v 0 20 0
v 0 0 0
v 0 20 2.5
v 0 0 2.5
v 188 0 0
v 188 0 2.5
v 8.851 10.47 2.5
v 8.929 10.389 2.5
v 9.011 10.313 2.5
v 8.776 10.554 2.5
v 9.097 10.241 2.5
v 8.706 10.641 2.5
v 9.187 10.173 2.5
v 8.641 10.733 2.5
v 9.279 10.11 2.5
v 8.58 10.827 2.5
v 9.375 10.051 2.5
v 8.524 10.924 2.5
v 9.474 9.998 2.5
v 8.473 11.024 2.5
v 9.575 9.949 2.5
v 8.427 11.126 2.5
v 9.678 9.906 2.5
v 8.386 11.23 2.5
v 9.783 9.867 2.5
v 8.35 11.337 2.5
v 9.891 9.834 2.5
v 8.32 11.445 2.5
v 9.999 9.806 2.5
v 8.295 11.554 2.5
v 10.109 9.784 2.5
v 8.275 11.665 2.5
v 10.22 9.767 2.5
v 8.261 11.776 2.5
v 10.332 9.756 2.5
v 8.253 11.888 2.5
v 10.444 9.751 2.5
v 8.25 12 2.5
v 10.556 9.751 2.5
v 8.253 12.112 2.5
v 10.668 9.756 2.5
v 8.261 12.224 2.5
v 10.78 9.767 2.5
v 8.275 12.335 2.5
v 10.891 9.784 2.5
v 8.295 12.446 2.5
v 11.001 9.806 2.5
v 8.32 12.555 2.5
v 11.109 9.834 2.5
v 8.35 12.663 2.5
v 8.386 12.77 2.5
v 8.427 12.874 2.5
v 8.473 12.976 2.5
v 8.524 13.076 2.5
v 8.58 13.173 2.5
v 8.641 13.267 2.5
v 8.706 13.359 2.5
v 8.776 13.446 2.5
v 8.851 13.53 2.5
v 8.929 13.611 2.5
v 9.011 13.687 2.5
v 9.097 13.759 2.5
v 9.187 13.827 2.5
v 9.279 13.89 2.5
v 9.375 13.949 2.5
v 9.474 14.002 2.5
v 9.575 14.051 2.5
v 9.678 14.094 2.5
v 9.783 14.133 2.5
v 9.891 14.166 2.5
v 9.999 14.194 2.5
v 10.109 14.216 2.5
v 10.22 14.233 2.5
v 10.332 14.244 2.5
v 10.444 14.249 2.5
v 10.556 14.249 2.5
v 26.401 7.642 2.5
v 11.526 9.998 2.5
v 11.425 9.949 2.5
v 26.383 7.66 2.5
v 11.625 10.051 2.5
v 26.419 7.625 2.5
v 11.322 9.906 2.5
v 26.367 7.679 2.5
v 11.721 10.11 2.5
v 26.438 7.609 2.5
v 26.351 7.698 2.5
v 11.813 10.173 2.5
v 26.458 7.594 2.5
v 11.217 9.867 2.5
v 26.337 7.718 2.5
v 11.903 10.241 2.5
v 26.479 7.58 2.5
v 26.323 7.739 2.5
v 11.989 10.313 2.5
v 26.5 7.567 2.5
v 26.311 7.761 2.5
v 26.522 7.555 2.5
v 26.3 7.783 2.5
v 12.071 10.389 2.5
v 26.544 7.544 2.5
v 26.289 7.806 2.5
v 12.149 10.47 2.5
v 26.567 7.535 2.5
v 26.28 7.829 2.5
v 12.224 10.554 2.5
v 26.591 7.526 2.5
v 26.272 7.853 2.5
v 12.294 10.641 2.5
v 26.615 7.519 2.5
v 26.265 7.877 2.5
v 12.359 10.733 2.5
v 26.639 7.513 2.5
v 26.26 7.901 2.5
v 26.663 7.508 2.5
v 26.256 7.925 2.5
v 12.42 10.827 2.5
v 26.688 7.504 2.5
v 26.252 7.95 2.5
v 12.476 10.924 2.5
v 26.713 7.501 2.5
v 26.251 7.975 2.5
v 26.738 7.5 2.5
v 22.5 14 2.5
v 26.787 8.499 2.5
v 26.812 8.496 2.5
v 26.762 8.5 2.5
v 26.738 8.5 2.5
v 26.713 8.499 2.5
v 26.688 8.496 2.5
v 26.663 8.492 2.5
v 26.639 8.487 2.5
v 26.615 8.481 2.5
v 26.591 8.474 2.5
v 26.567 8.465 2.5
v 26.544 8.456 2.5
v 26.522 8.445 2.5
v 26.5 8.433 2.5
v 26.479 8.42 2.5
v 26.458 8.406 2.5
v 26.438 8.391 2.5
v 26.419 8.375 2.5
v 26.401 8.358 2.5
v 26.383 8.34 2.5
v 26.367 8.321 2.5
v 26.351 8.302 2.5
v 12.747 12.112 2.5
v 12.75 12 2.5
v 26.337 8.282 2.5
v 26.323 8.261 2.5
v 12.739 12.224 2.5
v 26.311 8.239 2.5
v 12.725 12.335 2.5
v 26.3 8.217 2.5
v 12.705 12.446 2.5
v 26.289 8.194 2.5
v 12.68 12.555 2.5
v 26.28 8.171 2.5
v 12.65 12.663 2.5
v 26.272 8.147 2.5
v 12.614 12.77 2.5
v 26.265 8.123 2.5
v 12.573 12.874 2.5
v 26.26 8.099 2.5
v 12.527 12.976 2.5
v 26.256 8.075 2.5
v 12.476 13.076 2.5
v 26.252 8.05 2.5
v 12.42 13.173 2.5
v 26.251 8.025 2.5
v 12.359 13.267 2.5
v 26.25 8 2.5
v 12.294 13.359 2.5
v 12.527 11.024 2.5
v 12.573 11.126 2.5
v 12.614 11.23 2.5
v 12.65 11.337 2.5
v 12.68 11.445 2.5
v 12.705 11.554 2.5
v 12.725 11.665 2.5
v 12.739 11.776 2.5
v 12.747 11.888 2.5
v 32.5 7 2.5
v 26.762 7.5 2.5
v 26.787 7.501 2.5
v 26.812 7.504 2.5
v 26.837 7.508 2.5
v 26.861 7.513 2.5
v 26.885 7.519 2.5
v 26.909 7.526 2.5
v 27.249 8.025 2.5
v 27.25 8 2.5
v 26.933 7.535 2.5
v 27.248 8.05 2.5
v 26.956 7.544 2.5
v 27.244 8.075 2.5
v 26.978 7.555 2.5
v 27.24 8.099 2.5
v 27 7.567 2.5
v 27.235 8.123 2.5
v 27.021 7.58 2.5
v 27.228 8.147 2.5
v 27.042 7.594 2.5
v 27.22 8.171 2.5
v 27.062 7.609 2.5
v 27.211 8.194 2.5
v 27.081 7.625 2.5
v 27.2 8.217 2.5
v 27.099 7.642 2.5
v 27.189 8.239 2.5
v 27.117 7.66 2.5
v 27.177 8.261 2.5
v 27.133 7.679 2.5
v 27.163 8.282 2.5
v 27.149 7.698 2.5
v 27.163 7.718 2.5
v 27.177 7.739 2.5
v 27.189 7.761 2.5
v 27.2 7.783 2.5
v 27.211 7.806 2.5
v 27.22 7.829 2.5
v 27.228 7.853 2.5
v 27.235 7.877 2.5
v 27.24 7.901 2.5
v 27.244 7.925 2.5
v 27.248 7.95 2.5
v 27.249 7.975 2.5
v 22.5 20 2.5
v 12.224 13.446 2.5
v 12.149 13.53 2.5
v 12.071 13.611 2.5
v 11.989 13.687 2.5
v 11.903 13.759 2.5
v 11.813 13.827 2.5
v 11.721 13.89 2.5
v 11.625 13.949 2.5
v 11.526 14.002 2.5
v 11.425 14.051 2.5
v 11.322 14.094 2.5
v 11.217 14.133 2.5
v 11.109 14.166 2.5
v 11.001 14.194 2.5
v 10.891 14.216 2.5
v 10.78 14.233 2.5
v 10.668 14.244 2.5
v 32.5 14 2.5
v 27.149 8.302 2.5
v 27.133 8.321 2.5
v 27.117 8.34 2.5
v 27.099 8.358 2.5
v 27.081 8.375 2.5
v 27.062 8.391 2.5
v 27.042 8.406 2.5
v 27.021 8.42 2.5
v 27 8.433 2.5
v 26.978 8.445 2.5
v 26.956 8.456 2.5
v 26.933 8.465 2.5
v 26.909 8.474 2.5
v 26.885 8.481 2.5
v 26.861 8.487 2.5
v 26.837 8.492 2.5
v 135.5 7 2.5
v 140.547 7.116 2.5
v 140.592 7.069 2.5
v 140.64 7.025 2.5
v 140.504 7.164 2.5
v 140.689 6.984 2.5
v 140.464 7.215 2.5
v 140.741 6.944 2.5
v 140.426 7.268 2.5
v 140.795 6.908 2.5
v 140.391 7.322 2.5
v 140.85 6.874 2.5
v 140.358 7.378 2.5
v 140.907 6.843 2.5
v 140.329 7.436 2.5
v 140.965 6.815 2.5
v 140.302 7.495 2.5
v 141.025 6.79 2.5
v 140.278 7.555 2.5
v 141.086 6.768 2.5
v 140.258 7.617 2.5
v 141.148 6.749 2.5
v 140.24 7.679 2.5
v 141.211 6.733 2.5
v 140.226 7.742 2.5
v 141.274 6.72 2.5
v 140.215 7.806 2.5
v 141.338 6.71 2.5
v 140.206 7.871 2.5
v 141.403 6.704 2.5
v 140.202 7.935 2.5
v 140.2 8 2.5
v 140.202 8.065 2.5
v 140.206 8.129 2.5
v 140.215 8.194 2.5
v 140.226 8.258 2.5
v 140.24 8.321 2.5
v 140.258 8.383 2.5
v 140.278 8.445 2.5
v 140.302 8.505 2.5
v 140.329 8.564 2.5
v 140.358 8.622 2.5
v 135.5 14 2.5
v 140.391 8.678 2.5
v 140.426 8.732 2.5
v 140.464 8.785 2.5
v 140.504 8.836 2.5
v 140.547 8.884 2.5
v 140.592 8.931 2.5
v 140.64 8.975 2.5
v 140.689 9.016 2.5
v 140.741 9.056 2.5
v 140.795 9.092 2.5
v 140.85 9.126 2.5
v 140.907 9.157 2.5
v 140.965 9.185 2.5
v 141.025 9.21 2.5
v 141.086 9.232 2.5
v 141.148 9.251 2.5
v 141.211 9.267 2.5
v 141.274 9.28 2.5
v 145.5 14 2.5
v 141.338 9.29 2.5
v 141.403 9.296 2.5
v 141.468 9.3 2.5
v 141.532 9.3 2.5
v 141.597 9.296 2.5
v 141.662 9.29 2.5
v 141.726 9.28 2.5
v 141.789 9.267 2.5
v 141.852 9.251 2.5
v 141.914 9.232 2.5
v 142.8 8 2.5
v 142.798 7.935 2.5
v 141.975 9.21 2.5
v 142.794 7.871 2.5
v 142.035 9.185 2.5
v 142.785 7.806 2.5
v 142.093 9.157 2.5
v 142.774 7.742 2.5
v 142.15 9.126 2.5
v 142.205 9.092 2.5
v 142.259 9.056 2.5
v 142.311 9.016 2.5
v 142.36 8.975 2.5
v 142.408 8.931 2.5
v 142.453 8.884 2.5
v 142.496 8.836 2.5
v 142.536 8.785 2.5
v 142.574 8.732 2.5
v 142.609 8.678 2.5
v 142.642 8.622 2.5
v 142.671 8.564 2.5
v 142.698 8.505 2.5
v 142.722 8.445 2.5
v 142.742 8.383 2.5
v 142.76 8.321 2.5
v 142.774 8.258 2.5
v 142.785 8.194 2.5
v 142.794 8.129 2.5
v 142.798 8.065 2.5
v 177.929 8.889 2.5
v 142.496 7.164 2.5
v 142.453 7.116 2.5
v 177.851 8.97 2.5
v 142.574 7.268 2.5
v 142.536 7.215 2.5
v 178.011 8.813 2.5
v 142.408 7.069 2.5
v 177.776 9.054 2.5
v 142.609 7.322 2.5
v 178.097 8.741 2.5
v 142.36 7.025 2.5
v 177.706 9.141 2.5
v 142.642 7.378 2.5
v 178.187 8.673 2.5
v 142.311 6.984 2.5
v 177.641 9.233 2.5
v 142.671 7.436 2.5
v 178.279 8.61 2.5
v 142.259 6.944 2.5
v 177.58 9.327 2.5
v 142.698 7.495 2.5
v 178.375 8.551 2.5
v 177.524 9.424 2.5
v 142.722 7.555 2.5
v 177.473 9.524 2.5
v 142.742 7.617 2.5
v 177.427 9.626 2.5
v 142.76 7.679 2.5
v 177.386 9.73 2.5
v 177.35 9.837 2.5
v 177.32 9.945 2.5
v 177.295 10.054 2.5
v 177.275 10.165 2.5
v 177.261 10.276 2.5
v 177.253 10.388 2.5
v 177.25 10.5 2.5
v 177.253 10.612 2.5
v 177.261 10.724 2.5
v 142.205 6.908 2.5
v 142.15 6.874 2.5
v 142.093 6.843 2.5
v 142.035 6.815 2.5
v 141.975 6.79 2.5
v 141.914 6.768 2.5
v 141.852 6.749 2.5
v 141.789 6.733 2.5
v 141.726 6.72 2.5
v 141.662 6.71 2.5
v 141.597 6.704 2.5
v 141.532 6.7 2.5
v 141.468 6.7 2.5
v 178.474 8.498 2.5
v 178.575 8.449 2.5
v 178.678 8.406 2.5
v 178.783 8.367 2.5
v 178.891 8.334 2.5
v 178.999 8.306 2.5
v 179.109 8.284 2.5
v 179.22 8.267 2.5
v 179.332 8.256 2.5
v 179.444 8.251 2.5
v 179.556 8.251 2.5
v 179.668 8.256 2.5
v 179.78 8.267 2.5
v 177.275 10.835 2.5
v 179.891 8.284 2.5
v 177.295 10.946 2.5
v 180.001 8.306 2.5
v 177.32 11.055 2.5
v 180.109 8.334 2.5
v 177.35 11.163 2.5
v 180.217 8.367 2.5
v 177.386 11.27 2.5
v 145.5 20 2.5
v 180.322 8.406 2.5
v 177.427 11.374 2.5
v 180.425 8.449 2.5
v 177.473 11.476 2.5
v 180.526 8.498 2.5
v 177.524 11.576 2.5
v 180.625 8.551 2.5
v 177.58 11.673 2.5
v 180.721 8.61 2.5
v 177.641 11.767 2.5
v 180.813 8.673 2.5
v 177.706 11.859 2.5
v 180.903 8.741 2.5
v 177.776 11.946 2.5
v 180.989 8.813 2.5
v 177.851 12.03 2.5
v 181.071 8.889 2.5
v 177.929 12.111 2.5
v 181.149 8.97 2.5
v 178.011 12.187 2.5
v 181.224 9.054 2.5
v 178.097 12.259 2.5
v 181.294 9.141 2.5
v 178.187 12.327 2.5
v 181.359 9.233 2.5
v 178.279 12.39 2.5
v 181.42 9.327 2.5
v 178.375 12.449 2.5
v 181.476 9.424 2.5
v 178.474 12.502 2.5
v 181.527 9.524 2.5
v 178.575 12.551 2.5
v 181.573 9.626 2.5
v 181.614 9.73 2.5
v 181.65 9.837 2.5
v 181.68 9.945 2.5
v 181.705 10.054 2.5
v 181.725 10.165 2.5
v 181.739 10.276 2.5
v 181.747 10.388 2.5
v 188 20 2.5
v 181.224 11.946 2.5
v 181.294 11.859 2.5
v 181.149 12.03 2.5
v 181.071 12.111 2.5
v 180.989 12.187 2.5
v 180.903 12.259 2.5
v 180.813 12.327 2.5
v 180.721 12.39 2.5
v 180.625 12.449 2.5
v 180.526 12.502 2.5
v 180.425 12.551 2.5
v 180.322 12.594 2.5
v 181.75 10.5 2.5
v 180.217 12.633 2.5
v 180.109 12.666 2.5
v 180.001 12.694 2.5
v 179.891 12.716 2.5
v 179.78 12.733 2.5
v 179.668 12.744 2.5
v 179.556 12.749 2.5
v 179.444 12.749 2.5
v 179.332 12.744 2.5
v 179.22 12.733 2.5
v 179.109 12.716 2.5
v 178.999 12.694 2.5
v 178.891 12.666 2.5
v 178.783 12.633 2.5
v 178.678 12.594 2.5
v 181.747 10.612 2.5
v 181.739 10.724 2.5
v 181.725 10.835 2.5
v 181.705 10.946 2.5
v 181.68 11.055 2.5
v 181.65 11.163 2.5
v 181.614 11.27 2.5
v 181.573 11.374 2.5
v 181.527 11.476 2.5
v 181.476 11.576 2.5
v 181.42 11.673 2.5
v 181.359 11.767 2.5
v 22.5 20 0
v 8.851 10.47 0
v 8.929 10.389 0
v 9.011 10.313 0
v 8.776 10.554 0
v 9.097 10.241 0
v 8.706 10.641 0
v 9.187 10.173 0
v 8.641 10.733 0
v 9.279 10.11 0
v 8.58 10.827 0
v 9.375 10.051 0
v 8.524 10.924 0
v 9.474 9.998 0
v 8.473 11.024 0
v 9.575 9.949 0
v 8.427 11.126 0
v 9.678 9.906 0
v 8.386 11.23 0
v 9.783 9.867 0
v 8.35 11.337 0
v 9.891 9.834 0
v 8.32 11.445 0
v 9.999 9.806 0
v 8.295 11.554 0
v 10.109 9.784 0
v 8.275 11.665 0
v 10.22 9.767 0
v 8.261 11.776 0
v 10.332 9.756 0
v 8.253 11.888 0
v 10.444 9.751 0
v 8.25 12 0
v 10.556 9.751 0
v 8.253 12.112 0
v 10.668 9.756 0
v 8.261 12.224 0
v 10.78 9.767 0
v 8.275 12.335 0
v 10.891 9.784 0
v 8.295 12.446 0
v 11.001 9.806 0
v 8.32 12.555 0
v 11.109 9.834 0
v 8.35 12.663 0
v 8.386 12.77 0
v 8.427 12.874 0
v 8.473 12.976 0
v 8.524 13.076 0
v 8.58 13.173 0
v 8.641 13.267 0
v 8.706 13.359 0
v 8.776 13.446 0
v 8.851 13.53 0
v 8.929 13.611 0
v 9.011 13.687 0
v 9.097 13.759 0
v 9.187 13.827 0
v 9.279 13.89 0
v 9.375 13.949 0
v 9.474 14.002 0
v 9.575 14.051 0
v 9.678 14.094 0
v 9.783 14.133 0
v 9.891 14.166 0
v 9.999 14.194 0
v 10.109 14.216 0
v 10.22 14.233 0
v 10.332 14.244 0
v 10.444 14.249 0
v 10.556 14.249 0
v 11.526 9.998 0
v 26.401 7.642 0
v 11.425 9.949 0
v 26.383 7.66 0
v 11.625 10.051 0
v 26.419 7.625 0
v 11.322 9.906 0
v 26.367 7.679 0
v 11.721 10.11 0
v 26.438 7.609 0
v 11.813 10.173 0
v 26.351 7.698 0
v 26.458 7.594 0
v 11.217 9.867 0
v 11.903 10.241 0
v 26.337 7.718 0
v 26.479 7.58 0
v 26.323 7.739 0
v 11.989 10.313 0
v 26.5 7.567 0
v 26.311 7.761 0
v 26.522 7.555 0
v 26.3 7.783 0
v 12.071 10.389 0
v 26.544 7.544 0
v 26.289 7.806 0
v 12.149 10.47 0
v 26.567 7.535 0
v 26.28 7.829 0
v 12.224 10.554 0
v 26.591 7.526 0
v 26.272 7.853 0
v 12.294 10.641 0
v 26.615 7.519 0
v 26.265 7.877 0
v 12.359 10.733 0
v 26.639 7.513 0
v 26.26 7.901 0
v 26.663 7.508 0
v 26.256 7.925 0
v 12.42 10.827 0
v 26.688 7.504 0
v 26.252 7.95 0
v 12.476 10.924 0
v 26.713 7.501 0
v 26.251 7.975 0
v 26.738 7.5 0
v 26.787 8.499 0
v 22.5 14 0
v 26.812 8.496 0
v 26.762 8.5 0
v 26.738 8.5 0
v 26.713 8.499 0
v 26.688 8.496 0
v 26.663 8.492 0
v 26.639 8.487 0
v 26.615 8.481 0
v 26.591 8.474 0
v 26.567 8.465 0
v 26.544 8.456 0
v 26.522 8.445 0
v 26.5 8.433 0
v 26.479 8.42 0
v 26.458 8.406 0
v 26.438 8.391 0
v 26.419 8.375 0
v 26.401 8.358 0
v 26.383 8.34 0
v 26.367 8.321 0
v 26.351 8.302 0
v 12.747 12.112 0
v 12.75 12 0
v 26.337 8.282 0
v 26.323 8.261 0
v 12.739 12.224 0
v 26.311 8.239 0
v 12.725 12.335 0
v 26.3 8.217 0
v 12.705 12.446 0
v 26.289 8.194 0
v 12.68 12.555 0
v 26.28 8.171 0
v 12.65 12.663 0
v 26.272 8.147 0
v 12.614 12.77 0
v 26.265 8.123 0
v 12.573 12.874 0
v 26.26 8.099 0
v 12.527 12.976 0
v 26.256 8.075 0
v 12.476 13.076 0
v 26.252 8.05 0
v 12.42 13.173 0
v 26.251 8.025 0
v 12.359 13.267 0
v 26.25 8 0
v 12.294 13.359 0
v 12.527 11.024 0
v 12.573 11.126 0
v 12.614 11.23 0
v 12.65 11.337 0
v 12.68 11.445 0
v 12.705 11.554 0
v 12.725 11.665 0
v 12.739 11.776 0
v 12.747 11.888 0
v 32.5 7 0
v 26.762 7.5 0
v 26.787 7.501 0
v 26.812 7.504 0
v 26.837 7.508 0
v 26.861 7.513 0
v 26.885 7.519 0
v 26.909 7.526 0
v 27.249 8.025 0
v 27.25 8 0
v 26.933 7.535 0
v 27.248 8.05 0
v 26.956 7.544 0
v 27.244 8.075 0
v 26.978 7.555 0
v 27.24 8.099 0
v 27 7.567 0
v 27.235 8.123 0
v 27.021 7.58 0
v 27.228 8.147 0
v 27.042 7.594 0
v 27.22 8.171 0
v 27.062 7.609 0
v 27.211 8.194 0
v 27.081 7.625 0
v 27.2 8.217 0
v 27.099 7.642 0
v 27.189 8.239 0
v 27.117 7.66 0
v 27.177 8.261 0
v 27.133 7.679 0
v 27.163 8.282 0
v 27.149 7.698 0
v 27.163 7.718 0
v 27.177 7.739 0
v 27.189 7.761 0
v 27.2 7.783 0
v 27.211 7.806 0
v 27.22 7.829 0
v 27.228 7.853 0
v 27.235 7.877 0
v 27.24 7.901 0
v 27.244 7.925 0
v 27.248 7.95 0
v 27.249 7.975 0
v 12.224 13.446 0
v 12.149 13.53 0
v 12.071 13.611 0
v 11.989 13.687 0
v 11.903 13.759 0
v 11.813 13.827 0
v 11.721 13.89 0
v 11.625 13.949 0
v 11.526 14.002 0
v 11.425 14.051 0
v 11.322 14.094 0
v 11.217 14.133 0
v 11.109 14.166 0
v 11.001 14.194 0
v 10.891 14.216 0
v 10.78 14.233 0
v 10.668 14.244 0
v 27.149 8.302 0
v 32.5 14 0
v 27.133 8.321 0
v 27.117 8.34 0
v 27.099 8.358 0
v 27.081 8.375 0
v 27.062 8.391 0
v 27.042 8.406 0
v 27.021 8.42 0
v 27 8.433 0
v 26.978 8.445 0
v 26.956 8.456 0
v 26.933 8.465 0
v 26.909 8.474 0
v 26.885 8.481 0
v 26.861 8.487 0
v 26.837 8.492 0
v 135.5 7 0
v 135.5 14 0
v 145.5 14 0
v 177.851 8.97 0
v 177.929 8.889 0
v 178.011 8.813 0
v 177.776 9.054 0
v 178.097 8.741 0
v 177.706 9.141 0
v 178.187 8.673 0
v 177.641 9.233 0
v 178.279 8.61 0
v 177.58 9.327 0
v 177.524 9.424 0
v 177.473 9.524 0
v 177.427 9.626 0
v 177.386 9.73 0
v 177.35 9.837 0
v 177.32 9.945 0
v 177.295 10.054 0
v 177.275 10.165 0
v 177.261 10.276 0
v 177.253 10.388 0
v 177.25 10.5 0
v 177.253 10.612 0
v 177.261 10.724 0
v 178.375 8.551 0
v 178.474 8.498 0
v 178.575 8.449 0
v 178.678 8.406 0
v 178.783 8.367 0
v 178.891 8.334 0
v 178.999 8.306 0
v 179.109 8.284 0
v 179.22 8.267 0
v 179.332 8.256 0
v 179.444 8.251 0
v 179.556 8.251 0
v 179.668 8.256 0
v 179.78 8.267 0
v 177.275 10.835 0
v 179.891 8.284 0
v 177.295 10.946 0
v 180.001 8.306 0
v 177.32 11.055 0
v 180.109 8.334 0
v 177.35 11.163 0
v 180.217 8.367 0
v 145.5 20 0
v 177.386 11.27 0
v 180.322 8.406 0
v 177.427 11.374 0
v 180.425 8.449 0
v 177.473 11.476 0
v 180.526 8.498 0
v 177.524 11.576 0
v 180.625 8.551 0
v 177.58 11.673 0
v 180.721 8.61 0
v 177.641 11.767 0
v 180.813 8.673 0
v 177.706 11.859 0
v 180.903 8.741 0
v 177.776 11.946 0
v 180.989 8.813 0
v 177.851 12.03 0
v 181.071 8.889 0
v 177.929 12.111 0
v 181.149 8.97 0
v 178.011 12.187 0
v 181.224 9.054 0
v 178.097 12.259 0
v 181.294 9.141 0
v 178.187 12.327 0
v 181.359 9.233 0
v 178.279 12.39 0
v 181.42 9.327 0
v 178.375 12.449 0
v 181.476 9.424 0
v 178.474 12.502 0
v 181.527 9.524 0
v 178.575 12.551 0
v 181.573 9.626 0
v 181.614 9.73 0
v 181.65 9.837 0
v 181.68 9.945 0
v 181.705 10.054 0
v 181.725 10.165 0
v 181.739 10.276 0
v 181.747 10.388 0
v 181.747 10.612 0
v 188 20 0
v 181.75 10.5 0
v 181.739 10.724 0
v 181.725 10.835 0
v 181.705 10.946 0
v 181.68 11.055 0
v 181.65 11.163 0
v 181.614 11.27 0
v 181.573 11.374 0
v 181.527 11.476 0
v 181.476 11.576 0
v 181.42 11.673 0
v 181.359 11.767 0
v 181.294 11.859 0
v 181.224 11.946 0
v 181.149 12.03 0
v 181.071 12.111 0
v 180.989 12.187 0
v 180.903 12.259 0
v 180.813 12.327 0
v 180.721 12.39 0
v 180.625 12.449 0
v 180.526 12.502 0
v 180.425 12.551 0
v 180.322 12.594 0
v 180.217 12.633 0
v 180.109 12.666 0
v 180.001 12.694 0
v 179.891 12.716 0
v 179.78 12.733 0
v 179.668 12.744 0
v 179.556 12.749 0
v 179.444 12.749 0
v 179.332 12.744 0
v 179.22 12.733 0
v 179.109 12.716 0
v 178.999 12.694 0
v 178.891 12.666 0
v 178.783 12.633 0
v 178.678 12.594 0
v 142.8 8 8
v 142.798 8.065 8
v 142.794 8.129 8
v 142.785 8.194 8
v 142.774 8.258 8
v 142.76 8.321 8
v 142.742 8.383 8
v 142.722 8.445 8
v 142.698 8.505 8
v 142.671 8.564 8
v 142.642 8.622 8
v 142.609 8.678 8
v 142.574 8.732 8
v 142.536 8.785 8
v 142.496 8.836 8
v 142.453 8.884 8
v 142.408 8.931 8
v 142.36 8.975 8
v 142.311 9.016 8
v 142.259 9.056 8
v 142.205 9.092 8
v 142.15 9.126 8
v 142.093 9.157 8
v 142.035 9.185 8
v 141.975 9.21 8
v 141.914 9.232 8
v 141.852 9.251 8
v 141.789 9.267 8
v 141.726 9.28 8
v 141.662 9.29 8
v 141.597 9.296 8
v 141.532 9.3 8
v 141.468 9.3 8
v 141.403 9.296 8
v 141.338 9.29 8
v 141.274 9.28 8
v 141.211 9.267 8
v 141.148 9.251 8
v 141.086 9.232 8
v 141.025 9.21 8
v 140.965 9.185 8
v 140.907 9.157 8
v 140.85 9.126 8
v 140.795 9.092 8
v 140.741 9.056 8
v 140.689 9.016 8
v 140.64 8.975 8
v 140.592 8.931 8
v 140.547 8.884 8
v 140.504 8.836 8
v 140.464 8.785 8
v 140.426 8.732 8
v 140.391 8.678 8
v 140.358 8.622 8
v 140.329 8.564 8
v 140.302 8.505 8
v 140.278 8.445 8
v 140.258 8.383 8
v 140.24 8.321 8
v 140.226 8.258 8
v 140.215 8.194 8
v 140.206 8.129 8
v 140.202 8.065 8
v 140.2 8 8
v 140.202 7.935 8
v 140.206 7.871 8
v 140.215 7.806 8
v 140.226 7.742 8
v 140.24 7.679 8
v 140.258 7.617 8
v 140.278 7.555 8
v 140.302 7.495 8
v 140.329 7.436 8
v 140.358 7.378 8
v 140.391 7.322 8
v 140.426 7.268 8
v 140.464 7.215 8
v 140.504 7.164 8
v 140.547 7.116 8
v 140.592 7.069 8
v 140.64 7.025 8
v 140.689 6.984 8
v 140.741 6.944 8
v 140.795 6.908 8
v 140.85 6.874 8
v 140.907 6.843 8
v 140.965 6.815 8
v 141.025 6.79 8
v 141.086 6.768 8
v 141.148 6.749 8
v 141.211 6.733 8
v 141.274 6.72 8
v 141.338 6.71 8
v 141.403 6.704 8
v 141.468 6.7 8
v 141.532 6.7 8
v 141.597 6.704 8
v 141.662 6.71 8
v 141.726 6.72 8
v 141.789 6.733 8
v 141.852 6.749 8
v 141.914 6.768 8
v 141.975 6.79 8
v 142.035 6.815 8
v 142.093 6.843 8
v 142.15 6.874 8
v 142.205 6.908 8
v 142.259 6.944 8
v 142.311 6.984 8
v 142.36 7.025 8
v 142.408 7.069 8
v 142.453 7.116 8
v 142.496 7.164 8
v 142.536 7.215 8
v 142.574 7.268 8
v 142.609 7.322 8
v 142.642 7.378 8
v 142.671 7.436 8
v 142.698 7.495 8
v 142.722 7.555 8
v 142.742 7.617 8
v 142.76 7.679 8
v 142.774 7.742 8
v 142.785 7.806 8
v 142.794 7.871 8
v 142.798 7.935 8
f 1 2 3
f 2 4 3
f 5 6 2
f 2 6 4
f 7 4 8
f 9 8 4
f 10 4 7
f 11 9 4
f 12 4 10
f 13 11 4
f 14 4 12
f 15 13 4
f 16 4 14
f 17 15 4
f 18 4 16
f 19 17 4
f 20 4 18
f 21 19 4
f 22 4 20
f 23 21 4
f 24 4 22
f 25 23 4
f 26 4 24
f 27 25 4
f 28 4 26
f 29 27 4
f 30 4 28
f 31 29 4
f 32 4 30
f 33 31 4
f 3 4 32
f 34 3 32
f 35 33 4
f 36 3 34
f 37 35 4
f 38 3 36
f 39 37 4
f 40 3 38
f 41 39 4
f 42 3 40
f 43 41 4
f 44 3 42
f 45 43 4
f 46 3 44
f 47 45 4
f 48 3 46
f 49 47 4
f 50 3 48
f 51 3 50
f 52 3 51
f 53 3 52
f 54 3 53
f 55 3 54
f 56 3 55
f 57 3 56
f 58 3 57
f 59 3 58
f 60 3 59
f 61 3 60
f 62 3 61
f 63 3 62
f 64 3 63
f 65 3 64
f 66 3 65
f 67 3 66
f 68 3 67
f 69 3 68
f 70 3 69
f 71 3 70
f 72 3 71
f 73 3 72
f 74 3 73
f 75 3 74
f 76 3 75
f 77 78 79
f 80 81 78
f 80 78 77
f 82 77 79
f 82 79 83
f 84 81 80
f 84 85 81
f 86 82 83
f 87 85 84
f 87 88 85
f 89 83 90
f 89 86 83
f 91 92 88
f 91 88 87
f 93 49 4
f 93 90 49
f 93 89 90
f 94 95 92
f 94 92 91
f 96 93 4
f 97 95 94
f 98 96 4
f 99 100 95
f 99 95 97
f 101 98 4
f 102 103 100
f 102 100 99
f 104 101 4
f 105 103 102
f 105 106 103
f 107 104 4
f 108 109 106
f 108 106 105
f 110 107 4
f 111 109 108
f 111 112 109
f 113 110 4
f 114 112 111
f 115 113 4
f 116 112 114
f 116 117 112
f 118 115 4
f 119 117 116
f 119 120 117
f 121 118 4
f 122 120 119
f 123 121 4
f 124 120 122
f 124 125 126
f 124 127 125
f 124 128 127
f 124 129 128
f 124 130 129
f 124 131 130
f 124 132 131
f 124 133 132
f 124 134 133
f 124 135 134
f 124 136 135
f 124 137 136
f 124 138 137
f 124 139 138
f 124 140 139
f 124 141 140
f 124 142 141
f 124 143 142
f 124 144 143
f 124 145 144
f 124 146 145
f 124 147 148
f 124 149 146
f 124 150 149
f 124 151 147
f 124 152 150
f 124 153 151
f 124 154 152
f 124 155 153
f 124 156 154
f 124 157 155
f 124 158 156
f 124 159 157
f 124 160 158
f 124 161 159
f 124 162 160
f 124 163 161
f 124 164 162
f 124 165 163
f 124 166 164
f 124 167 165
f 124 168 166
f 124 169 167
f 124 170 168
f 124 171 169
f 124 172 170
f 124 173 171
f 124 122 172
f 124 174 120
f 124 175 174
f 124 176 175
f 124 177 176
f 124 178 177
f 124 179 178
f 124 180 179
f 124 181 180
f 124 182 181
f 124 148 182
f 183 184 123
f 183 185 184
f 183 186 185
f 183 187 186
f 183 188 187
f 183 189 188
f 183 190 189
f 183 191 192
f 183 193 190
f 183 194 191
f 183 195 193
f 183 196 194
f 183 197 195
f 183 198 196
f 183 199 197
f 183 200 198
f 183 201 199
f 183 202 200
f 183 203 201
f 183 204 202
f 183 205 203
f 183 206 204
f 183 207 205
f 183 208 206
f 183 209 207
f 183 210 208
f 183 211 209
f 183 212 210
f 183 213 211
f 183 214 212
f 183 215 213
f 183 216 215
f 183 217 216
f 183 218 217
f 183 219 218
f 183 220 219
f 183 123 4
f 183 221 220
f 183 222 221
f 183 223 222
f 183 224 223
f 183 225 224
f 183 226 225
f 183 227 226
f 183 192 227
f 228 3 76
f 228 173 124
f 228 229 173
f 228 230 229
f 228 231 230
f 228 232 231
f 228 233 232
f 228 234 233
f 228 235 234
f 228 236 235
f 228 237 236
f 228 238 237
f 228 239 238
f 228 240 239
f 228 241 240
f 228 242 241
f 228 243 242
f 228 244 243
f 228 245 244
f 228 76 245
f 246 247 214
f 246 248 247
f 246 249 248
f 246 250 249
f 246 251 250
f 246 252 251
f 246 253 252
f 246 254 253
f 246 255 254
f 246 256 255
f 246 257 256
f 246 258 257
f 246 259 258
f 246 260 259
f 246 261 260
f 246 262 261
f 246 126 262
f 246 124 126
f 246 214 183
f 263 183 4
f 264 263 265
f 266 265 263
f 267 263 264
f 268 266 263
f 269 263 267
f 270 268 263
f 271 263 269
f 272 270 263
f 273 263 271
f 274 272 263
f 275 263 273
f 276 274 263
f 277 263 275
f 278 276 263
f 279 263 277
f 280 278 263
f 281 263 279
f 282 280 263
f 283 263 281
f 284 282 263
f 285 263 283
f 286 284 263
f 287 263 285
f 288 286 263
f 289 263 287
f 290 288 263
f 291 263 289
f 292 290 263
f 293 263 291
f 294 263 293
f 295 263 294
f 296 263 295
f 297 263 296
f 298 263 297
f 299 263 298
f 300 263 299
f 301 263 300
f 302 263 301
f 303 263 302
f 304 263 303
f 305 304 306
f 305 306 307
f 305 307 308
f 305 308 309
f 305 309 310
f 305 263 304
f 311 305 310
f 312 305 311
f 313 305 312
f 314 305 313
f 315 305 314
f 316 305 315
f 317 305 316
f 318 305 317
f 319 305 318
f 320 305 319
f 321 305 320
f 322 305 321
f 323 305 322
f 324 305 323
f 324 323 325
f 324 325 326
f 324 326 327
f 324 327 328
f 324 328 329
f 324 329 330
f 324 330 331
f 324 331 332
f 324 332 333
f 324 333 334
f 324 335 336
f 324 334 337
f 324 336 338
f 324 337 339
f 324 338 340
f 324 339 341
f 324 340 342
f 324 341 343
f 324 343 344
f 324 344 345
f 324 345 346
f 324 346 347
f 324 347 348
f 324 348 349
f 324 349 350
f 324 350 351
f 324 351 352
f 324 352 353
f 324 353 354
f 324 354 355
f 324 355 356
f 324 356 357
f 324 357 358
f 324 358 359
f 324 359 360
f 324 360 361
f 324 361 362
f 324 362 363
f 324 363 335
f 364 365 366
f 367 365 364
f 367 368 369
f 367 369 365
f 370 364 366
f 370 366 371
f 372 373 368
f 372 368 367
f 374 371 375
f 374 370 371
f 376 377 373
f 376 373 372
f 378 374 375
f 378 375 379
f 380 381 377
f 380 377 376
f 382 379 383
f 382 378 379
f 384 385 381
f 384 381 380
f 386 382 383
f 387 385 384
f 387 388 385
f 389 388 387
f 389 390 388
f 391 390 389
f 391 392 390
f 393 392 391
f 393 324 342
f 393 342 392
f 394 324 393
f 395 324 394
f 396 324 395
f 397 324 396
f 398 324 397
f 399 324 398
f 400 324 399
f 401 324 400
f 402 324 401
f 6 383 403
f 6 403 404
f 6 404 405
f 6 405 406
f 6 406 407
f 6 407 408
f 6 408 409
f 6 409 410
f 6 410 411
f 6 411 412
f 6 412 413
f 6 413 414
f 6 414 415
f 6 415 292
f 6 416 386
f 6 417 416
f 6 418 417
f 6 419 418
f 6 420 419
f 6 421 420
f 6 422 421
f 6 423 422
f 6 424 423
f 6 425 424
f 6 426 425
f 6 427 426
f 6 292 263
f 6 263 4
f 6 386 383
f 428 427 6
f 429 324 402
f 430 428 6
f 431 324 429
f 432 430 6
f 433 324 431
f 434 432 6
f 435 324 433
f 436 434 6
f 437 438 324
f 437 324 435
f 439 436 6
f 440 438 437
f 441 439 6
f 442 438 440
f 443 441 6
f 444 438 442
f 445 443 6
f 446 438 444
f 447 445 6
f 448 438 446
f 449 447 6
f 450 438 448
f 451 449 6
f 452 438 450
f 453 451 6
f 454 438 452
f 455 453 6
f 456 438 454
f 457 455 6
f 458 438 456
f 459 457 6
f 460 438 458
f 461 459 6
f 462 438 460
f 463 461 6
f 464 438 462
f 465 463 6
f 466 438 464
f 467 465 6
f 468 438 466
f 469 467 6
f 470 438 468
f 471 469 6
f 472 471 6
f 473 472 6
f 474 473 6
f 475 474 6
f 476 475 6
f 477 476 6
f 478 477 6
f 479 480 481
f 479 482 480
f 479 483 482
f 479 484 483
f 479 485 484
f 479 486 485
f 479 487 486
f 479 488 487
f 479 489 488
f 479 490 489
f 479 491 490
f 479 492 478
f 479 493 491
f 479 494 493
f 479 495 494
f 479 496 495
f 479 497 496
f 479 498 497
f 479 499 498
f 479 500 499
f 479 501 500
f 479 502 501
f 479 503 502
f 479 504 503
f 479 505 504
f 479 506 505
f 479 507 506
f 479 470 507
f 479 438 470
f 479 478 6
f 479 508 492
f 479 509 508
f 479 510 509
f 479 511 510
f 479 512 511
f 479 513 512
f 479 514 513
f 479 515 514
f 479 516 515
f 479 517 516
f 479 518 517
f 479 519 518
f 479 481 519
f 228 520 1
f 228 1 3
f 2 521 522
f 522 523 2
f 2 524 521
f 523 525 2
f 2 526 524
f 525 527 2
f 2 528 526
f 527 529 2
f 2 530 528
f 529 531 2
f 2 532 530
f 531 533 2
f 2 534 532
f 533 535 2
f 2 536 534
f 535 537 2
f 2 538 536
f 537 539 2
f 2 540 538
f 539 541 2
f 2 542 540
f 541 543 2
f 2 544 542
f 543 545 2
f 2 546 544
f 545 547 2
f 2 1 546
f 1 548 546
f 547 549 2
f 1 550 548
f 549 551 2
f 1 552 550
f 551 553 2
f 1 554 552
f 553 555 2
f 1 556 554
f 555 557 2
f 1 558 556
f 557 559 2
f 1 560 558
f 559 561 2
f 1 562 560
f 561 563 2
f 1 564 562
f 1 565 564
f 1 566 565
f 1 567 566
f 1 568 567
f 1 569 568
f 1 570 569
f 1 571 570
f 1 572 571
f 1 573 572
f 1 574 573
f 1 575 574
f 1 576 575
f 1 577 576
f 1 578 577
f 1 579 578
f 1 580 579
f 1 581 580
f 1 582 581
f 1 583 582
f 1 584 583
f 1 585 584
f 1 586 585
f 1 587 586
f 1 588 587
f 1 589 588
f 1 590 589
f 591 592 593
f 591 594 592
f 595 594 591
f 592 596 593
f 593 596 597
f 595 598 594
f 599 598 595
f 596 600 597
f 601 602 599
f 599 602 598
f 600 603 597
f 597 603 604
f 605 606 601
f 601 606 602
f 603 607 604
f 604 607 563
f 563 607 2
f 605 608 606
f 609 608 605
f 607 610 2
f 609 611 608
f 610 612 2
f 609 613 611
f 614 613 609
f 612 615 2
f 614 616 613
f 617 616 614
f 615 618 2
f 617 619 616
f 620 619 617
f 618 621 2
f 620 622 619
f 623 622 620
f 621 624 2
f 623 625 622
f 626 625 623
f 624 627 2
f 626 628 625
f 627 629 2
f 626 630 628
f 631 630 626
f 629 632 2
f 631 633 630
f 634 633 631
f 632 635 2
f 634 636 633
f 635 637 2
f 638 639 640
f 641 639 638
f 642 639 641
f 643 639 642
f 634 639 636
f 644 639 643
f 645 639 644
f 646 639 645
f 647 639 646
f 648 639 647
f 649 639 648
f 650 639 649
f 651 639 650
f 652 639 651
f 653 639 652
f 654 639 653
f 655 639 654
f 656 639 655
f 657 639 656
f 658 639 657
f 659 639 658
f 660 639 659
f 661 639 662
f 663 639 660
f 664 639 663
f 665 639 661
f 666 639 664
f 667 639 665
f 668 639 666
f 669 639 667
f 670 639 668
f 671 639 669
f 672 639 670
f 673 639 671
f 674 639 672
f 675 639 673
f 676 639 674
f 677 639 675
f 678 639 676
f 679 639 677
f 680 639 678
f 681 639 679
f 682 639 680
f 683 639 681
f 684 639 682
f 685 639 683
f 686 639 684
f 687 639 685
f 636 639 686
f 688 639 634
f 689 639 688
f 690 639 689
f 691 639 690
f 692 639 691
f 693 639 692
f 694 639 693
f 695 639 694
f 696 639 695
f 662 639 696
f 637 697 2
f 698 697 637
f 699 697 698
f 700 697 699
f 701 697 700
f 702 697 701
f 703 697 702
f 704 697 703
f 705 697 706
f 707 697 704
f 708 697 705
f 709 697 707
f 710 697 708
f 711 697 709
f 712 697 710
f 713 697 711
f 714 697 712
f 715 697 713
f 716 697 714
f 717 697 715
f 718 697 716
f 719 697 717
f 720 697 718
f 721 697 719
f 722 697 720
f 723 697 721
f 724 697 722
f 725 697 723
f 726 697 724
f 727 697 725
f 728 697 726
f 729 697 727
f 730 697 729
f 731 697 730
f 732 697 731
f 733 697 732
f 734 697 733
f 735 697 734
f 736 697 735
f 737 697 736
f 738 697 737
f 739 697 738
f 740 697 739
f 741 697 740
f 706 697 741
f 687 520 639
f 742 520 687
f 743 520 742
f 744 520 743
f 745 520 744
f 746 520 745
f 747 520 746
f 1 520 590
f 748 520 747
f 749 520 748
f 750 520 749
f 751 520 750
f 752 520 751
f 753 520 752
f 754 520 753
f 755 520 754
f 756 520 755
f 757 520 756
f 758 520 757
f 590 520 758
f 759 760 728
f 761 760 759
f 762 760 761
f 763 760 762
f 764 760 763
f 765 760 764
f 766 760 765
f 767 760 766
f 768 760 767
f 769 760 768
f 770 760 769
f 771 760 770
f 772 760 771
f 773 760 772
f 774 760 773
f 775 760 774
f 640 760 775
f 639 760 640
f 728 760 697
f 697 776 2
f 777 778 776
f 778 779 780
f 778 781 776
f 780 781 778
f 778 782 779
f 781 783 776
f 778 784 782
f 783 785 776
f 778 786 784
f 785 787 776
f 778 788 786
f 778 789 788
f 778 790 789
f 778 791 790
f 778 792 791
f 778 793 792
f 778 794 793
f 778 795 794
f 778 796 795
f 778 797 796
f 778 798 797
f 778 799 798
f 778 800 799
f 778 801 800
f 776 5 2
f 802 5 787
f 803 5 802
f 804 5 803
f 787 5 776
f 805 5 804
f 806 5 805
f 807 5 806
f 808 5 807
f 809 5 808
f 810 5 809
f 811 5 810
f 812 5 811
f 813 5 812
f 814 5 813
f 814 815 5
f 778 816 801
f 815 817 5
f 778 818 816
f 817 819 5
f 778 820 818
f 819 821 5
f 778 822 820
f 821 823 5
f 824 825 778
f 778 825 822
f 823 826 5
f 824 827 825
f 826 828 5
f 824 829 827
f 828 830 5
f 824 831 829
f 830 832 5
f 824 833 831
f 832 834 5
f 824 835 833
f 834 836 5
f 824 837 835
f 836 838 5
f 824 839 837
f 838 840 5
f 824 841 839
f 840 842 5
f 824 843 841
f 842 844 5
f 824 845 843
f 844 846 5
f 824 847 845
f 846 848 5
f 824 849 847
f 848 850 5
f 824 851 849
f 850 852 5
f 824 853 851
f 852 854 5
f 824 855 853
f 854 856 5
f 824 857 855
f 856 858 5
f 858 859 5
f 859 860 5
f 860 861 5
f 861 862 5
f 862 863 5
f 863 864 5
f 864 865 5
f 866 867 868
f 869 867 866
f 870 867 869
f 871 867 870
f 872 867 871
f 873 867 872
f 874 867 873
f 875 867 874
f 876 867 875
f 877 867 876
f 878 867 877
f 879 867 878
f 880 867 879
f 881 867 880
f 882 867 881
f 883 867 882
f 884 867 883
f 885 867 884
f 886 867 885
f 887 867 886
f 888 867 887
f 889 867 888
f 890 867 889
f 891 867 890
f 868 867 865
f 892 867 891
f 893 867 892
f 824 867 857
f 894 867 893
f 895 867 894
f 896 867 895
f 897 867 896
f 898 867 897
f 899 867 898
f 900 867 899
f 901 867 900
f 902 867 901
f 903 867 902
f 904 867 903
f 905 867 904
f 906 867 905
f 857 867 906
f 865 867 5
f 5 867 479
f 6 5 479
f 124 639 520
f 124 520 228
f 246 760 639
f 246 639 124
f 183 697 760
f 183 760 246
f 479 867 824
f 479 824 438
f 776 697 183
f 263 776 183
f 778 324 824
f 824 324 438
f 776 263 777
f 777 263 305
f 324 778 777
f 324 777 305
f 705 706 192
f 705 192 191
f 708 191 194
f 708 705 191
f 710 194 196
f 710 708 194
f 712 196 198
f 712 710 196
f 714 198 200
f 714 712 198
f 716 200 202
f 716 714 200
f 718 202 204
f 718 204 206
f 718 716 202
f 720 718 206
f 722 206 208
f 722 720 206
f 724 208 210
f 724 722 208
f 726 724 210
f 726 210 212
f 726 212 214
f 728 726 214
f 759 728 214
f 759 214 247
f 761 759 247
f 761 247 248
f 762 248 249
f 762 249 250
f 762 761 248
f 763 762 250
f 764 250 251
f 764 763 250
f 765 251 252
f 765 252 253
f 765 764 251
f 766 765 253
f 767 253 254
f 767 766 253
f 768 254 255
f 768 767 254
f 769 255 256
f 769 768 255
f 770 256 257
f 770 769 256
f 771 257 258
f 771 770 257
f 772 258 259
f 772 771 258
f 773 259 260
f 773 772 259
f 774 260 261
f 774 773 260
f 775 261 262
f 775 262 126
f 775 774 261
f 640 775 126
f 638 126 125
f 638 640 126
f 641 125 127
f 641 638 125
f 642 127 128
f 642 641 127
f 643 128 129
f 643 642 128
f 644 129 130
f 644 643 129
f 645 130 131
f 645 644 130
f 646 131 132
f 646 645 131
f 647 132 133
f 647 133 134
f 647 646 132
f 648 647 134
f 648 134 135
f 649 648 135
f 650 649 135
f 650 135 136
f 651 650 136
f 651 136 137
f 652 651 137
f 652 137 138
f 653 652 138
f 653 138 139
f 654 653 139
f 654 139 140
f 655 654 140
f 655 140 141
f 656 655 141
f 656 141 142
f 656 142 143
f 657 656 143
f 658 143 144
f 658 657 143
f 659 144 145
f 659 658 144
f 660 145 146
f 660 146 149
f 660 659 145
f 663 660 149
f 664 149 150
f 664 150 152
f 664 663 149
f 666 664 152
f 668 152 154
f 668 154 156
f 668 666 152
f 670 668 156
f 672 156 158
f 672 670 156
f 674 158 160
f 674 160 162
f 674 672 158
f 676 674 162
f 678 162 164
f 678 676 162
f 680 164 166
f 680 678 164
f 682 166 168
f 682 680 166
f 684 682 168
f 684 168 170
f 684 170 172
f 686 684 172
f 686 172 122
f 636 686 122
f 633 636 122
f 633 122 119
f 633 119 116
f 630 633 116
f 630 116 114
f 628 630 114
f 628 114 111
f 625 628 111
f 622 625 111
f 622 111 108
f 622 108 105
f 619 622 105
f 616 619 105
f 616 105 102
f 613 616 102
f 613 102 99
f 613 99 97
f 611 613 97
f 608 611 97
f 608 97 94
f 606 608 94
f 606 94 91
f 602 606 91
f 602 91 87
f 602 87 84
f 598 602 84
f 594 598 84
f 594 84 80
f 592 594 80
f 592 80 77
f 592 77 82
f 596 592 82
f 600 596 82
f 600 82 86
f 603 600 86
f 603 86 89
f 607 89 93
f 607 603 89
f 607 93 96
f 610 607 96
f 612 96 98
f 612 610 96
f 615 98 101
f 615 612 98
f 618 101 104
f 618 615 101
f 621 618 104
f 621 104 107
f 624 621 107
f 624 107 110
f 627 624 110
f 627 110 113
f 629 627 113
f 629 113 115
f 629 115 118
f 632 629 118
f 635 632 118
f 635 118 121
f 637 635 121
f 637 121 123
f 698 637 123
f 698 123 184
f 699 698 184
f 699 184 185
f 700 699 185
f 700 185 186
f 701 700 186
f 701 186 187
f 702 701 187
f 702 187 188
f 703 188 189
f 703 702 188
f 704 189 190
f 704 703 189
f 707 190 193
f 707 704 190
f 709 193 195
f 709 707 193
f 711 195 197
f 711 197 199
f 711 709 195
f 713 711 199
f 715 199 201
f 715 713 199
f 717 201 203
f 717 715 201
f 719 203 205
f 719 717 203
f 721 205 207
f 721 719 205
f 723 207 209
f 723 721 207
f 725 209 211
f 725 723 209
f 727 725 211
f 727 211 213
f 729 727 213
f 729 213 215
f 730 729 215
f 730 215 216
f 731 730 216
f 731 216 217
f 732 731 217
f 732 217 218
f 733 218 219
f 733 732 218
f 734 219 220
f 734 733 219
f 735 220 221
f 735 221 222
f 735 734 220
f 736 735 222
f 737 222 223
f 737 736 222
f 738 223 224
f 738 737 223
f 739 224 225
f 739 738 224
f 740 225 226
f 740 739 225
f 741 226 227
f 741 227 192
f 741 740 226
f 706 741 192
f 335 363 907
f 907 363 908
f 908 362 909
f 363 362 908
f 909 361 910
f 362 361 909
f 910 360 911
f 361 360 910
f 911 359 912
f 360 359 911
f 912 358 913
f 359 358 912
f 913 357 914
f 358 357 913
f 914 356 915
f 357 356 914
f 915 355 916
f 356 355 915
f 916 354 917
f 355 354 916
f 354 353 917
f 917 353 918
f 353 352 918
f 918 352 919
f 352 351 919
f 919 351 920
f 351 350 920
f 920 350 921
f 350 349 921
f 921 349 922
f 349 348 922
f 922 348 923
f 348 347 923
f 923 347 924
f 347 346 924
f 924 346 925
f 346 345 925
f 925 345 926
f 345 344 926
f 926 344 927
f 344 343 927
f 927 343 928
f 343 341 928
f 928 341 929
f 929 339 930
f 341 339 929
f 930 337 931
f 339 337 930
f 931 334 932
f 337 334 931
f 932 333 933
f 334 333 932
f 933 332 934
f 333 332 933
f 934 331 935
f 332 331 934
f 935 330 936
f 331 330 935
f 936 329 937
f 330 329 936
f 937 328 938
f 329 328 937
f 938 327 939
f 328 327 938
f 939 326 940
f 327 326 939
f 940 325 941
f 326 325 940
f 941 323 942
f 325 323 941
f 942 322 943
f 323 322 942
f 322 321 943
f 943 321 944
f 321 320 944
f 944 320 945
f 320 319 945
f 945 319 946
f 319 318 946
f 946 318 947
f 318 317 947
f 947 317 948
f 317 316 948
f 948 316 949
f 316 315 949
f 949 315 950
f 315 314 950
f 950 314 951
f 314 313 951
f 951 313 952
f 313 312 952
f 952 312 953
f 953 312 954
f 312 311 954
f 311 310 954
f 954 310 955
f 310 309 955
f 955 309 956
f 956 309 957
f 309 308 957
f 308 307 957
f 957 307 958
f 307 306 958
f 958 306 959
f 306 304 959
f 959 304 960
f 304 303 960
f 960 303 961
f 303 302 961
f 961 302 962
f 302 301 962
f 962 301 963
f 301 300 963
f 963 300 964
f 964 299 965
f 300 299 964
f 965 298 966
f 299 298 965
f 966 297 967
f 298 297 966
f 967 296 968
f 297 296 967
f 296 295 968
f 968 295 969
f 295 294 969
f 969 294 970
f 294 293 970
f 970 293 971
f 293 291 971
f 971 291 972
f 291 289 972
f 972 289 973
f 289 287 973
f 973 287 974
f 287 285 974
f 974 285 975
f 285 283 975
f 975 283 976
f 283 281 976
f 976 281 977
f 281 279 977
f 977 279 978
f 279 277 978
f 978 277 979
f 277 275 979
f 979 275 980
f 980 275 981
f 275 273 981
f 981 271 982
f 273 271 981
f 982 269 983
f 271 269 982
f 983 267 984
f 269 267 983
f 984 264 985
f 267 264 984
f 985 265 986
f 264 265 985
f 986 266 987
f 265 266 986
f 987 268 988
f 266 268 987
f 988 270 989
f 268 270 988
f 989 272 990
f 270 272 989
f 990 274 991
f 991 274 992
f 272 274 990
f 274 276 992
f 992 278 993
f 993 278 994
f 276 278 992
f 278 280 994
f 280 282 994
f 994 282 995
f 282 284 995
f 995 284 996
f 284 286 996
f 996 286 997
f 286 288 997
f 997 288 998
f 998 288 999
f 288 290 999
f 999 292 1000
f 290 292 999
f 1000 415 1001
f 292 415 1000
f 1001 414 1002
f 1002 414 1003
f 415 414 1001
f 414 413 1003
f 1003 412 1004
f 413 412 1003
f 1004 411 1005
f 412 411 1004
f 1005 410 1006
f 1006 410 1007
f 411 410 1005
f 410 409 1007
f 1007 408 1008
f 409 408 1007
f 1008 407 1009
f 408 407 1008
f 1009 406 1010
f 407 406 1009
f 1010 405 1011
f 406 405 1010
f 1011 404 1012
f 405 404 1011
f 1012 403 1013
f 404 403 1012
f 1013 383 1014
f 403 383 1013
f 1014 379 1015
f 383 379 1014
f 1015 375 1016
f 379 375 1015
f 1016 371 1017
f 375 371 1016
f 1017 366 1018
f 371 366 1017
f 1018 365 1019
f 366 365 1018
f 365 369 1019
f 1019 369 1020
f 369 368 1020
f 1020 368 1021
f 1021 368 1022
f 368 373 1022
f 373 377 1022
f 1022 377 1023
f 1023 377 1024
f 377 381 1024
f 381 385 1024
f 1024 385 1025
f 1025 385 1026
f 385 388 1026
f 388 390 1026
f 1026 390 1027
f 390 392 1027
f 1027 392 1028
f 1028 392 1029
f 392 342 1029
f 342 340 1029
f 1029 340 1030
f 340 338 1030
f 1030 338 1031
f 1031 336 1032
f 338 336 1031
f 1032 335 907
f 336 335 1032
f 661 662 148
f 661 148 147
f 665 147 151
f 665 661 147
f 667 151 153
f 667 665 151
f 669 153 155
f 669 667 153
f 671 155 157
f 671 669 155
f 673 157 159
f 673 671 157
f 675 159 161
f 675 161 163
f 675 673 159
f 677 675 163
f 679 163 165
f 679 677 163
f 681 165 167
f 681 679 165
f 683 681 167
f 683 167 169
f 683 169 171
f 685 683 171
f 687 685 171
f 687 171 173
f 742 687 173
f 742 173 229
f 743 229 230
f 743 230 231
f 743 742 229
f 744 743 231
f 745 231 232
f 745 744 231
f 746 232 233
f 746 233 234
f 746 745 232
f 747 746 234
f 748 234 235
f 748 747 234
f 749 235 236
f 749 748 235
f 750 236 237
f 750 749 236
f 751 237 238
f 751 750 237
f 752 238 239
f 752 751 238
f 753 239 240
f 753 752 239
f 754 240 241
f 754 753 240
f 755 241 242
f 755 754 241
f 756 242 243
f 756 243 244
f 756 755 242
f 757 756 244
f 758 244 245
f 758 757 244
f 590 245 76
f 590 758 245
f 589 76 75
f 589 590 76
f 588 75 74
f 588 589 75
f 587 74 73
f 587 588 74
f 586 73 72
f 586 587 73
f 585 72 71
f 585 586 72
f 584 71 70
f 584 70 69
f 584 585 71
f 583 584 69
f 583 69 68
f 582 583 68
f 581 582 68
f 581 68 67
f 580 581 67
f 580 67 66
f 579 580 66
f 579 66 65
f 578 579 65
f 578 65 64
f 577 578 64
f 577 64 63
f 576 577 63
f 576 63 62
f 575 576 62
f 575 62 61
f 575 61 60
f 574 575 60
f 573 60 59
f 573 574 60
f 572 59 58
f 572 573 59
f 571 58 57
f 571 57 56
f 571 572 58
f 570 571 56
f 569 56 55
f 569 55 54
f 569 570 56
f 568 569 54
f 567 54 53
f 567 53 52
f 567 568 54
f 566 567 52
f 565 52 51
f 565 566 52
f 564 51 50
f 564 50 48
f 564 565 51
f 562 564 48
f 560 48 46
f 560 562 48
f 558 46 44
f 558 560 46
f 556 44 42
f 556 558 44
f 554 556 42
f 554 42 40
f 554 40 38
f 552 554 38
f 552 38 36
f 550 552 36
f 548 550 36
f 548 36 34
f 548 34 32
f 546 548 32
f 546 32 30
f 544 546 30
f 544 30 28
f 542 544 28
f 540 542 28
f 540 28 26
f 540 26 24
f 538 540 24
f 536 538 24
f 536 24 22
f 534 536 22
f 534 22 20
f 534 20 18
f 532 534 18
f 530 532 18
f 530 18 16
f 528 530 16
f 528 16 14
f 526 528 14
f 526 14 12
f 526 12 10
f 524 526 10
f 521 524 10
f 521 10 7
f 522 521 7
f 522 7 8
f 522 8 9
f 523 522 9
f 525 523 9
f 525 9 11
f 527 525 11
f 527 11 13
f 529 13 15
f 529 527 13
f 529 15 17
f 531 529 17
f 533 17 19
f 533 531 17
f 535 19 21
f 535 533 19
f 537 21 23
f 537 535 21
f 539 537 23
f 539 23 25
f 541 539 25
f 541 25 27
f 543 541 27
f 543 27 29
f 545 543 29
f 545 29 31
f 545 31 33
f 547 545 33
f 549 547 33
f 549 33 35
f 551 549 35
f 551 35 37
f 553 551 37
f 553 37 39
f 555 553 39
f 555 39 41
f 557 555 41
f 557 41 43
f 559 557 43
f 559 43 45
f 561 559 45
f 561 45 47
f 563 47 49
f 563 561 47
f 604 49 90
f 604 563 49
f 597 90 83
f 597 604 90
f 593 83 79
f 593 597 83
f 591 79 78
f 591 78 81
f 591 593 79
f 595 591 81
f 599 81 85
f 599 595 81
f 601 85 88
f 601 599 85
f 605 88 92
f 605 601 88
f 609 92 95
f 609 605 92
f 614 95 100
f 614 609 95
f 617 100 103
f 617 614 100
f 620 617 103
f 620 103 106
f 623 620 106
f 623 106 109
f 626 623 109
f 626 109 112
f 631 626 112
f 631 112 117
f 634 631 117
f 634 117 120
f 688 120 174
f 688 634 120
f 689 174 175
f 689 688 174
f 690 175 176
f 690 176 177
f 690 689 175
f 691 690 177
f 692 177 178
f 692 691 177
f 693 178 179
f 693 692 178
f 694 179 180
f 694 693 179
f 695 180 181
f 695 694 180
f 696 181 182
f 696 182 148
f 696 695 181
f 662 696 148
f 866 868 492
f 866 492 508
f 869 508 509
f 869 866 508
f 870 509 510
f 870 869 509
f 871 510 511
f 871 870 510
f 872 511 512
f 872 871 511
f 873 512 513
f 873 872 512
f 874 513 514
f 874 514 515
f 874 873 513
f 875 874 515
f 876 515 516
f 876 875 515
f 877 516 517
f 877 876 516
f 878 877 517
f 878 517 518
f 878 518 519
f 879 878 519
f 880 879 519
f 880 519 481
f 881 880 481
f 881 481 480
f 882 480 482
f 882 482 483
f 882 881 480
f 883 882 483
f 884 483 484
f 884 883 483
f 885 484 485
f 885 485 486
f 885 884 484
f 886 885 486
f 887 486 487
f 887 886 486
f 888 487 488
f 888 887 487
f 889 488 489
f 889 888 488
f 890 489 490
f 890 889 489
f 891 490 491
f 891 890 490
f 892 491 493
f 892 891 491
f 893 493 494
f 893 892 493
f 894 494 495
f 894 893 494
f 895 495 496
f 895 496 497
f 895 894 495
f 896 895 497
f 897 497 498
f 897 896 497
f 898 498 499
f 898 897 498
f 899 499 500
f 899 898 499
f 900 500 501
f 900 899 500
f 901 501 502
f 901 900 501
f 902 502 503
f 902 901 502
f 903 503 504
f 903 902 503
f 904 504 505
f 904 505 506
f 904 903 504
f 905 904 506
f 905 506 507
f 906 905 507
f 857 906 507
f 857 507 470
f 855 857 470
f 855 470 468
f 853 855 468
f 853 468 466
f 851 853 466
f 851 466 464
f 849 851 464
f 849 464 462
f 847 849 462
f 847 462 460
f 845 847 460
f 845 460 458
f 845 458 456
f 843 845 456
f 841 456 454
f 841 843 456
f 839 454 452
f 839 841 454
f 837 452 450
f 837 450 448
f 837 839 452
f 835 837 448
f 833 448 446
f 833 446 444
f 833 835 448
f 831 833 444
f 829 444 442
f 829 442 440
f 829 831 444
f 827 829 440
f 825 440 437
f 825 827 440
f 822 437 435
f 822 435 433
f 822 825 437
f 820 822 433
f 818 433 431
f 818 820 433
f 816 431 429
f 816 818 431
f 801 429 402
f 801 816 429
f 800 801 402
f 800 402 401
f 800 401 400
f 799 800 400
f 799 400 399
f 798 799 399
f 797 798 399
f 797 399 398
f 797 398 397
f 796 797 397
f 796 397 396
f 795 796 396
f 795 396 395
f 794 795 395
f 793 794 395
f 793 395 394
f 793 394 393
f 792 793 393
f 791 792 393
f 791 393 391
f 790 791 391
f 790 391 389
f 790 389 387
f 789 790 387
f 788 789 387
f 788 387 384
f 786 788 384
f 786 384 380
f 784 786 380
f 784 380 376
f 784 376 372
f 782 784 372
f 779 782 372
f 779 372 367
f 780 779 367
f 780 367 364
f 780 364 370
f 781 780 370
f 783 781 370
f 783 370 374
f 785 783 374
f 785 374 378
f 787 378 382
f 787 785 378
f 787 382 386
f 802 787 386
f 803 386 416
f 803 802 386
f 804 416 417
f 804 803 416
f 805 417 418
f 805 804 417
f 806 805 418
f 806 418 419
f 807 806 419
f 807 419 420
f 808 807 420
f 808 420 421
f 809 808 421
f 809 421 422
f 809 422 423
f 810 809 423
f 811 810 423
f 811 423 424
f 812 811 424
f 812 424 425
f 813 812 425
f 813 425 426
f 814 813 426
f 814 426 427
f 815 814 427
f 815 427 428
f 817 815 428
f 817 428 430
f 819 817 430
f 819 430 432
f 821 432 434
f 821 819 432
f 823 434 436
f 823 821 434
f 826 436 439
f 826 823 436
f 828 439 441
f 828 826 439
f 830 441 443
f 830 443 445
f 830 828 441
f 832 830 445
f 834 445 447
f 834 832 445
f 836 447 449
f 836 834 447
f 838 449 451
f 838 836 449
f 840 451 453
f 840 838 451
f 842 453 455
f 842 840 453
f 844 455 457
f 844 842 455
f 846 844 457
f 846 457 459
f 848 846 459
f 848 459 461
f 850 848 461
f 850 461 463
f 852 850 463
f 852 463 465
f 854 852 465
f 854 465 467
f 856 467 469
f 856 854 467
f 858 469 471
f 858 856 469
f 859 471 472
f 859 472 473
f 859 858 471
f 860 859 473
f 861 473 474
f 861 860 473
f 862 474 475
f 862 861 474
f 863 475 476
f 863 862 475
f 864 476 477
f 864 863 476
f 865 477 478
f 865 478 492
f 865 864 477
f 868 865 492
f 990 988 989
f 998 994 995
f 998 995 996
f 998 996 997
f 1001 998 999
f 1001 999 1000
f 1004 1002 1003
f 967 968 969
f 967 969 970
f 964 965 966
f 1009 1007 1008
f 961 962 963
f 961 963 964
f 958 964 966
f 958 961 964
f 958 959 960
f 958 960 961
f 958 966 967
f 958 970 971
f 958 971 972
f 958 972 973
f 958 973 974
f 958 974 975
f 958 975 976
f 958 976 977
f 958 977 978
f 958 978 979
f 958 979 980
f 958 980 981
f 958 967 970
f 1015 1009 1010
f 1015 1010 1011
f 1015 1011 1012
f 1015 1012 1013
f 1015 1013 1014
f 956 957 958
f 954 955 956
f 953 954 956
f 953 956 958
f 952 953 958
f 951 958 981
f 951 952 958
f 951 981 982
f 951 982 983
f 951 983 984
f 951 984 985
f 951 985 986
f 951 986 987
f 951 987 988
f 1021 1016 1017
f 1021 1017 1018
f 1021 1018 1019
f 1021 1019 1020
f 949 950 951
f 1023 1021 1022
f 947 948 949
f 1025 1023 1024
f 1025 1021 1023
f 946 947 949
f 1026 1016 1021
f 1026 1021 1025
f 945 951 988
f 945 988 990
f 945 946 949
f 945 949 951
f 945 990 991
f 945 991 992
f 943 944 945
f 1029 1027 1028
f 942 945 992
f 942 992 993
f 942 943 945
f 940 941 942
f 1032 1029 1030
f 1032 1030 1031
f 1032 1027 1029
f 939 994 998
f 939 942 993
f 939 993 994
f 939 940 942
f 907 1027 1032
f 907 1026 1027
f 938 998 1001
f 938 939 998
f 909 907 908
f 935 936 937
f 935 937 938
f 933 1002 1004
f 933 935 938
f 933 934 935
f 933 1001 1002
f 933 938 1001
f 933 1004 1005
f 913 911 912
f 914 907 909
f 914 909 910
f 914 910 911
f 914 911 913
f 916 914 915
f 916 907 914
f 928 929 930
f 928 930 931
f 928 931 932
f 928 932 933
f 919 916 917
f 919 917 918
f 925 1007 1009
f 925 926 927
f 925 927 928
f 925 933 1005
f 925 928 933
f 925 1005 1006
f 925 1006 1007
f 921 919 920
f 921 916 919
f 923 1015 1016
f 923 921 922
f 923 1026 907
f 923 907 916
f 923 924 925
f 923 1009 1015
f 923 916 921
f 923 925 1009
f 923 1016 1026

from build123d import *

# Parameters (mm, degrees)
BOX_W             = 188
BOX_H             = 20
BOX_DEPTH         = 2.5
CYLINDER_R        = 2.25
CYLINDER_DEPTH    = 2.5
CYLINDER001_R     = 2.25
CYLINDER001_DEPTH = 2.5
BOX001_W          = 123
BOX001_H          = 6
BOX001_DEPTH      = 2.5
BOX002_W          = 103
BOX002_H          = 7
BOX002_DEPTH      = 2.5
CYLINDER003_R     = 1.3
CYLINDER003_DEPTH = 6
CYLINDER004_R     = 0.5
CYLINDER004_DEPTH = 2.5


with BuildPart() as part:
    # Box → Box (join)
    with BuildSketch(Plane.XY):
        with Locations((94, 10)):
            Rectangle(BOX_W, BOX_H)
    extrude(amount=BOX_DEPTH)

    # Cylinder → Cylinder (cut)
    with BuildSketch(Plane(origin=(10.5, 12, 0), x_dir=(1, 0, 0), z_dir=(0, 0, 1))):
        Circle(CYLINDER_R)
    extrude(amount=CYLINDER_DEPTH, mode=Mode.SUBTRACT)

    # Cylinder001 → Cylinder001 (cut)
    with BuildSketch(Plane(origin=(179.5, 10.5, 0), x_dir=(1, 0, 0), z_dir=(0, 0, 1))):
        Circle(CYLINDER001_R)
    extrude(amount=CYLINDER001_DEPTH, mode=Mode.SUBTRACT)

    # Box001 → Box001 (cut)
    with BuildSketch(Plane(origin=(22.5, 14, 0), x_dir=(1, 0, 0), z_dir=(0, 0, 1))):
        with Locations((61.5, 3)):
            Rectangle(BOX001_W, BOX001_H)
    extrude(amount=BOX001_DEPTH, mode=Mode.SUBTRACT)

    # Box002 → Box002 (cut)
    with BuildSketch(Plane(origin=(32.5, 7, 0), x_dir=(1, 0, 0), z_dir=(0, 0, 1))):
        with Locations((51.5, 3.5)):
            Rectangle(BOX002_W, BOX002_H)
    extrude(amount=BOX002_DEPTH, mode=Mode.SUBTRACT)

    # Cylinder003 → Cylinder003 (join)
    with BuildSketch(Plane(origin=(141.5, 8, 2), x_dir=(1, 0, 0), z_dir=(0, 0, 1))):
        Circle(CYLINDER003_R)
    extrude(amount=CYLINDER003_DEPTH)

    # Cylinder004 → Cylinder004 (cut)
    with BuildSketch(Plane(origin=(26.75, 8, 0), x_dir=(1, 0, 0), z_dir=(0, 0, 1))):
        Circle(CYLINDER004_R)
    extrude(amount=CYLINDER004_DEPTH, mode=Mode.SUBTRACT)


solid = part.part
